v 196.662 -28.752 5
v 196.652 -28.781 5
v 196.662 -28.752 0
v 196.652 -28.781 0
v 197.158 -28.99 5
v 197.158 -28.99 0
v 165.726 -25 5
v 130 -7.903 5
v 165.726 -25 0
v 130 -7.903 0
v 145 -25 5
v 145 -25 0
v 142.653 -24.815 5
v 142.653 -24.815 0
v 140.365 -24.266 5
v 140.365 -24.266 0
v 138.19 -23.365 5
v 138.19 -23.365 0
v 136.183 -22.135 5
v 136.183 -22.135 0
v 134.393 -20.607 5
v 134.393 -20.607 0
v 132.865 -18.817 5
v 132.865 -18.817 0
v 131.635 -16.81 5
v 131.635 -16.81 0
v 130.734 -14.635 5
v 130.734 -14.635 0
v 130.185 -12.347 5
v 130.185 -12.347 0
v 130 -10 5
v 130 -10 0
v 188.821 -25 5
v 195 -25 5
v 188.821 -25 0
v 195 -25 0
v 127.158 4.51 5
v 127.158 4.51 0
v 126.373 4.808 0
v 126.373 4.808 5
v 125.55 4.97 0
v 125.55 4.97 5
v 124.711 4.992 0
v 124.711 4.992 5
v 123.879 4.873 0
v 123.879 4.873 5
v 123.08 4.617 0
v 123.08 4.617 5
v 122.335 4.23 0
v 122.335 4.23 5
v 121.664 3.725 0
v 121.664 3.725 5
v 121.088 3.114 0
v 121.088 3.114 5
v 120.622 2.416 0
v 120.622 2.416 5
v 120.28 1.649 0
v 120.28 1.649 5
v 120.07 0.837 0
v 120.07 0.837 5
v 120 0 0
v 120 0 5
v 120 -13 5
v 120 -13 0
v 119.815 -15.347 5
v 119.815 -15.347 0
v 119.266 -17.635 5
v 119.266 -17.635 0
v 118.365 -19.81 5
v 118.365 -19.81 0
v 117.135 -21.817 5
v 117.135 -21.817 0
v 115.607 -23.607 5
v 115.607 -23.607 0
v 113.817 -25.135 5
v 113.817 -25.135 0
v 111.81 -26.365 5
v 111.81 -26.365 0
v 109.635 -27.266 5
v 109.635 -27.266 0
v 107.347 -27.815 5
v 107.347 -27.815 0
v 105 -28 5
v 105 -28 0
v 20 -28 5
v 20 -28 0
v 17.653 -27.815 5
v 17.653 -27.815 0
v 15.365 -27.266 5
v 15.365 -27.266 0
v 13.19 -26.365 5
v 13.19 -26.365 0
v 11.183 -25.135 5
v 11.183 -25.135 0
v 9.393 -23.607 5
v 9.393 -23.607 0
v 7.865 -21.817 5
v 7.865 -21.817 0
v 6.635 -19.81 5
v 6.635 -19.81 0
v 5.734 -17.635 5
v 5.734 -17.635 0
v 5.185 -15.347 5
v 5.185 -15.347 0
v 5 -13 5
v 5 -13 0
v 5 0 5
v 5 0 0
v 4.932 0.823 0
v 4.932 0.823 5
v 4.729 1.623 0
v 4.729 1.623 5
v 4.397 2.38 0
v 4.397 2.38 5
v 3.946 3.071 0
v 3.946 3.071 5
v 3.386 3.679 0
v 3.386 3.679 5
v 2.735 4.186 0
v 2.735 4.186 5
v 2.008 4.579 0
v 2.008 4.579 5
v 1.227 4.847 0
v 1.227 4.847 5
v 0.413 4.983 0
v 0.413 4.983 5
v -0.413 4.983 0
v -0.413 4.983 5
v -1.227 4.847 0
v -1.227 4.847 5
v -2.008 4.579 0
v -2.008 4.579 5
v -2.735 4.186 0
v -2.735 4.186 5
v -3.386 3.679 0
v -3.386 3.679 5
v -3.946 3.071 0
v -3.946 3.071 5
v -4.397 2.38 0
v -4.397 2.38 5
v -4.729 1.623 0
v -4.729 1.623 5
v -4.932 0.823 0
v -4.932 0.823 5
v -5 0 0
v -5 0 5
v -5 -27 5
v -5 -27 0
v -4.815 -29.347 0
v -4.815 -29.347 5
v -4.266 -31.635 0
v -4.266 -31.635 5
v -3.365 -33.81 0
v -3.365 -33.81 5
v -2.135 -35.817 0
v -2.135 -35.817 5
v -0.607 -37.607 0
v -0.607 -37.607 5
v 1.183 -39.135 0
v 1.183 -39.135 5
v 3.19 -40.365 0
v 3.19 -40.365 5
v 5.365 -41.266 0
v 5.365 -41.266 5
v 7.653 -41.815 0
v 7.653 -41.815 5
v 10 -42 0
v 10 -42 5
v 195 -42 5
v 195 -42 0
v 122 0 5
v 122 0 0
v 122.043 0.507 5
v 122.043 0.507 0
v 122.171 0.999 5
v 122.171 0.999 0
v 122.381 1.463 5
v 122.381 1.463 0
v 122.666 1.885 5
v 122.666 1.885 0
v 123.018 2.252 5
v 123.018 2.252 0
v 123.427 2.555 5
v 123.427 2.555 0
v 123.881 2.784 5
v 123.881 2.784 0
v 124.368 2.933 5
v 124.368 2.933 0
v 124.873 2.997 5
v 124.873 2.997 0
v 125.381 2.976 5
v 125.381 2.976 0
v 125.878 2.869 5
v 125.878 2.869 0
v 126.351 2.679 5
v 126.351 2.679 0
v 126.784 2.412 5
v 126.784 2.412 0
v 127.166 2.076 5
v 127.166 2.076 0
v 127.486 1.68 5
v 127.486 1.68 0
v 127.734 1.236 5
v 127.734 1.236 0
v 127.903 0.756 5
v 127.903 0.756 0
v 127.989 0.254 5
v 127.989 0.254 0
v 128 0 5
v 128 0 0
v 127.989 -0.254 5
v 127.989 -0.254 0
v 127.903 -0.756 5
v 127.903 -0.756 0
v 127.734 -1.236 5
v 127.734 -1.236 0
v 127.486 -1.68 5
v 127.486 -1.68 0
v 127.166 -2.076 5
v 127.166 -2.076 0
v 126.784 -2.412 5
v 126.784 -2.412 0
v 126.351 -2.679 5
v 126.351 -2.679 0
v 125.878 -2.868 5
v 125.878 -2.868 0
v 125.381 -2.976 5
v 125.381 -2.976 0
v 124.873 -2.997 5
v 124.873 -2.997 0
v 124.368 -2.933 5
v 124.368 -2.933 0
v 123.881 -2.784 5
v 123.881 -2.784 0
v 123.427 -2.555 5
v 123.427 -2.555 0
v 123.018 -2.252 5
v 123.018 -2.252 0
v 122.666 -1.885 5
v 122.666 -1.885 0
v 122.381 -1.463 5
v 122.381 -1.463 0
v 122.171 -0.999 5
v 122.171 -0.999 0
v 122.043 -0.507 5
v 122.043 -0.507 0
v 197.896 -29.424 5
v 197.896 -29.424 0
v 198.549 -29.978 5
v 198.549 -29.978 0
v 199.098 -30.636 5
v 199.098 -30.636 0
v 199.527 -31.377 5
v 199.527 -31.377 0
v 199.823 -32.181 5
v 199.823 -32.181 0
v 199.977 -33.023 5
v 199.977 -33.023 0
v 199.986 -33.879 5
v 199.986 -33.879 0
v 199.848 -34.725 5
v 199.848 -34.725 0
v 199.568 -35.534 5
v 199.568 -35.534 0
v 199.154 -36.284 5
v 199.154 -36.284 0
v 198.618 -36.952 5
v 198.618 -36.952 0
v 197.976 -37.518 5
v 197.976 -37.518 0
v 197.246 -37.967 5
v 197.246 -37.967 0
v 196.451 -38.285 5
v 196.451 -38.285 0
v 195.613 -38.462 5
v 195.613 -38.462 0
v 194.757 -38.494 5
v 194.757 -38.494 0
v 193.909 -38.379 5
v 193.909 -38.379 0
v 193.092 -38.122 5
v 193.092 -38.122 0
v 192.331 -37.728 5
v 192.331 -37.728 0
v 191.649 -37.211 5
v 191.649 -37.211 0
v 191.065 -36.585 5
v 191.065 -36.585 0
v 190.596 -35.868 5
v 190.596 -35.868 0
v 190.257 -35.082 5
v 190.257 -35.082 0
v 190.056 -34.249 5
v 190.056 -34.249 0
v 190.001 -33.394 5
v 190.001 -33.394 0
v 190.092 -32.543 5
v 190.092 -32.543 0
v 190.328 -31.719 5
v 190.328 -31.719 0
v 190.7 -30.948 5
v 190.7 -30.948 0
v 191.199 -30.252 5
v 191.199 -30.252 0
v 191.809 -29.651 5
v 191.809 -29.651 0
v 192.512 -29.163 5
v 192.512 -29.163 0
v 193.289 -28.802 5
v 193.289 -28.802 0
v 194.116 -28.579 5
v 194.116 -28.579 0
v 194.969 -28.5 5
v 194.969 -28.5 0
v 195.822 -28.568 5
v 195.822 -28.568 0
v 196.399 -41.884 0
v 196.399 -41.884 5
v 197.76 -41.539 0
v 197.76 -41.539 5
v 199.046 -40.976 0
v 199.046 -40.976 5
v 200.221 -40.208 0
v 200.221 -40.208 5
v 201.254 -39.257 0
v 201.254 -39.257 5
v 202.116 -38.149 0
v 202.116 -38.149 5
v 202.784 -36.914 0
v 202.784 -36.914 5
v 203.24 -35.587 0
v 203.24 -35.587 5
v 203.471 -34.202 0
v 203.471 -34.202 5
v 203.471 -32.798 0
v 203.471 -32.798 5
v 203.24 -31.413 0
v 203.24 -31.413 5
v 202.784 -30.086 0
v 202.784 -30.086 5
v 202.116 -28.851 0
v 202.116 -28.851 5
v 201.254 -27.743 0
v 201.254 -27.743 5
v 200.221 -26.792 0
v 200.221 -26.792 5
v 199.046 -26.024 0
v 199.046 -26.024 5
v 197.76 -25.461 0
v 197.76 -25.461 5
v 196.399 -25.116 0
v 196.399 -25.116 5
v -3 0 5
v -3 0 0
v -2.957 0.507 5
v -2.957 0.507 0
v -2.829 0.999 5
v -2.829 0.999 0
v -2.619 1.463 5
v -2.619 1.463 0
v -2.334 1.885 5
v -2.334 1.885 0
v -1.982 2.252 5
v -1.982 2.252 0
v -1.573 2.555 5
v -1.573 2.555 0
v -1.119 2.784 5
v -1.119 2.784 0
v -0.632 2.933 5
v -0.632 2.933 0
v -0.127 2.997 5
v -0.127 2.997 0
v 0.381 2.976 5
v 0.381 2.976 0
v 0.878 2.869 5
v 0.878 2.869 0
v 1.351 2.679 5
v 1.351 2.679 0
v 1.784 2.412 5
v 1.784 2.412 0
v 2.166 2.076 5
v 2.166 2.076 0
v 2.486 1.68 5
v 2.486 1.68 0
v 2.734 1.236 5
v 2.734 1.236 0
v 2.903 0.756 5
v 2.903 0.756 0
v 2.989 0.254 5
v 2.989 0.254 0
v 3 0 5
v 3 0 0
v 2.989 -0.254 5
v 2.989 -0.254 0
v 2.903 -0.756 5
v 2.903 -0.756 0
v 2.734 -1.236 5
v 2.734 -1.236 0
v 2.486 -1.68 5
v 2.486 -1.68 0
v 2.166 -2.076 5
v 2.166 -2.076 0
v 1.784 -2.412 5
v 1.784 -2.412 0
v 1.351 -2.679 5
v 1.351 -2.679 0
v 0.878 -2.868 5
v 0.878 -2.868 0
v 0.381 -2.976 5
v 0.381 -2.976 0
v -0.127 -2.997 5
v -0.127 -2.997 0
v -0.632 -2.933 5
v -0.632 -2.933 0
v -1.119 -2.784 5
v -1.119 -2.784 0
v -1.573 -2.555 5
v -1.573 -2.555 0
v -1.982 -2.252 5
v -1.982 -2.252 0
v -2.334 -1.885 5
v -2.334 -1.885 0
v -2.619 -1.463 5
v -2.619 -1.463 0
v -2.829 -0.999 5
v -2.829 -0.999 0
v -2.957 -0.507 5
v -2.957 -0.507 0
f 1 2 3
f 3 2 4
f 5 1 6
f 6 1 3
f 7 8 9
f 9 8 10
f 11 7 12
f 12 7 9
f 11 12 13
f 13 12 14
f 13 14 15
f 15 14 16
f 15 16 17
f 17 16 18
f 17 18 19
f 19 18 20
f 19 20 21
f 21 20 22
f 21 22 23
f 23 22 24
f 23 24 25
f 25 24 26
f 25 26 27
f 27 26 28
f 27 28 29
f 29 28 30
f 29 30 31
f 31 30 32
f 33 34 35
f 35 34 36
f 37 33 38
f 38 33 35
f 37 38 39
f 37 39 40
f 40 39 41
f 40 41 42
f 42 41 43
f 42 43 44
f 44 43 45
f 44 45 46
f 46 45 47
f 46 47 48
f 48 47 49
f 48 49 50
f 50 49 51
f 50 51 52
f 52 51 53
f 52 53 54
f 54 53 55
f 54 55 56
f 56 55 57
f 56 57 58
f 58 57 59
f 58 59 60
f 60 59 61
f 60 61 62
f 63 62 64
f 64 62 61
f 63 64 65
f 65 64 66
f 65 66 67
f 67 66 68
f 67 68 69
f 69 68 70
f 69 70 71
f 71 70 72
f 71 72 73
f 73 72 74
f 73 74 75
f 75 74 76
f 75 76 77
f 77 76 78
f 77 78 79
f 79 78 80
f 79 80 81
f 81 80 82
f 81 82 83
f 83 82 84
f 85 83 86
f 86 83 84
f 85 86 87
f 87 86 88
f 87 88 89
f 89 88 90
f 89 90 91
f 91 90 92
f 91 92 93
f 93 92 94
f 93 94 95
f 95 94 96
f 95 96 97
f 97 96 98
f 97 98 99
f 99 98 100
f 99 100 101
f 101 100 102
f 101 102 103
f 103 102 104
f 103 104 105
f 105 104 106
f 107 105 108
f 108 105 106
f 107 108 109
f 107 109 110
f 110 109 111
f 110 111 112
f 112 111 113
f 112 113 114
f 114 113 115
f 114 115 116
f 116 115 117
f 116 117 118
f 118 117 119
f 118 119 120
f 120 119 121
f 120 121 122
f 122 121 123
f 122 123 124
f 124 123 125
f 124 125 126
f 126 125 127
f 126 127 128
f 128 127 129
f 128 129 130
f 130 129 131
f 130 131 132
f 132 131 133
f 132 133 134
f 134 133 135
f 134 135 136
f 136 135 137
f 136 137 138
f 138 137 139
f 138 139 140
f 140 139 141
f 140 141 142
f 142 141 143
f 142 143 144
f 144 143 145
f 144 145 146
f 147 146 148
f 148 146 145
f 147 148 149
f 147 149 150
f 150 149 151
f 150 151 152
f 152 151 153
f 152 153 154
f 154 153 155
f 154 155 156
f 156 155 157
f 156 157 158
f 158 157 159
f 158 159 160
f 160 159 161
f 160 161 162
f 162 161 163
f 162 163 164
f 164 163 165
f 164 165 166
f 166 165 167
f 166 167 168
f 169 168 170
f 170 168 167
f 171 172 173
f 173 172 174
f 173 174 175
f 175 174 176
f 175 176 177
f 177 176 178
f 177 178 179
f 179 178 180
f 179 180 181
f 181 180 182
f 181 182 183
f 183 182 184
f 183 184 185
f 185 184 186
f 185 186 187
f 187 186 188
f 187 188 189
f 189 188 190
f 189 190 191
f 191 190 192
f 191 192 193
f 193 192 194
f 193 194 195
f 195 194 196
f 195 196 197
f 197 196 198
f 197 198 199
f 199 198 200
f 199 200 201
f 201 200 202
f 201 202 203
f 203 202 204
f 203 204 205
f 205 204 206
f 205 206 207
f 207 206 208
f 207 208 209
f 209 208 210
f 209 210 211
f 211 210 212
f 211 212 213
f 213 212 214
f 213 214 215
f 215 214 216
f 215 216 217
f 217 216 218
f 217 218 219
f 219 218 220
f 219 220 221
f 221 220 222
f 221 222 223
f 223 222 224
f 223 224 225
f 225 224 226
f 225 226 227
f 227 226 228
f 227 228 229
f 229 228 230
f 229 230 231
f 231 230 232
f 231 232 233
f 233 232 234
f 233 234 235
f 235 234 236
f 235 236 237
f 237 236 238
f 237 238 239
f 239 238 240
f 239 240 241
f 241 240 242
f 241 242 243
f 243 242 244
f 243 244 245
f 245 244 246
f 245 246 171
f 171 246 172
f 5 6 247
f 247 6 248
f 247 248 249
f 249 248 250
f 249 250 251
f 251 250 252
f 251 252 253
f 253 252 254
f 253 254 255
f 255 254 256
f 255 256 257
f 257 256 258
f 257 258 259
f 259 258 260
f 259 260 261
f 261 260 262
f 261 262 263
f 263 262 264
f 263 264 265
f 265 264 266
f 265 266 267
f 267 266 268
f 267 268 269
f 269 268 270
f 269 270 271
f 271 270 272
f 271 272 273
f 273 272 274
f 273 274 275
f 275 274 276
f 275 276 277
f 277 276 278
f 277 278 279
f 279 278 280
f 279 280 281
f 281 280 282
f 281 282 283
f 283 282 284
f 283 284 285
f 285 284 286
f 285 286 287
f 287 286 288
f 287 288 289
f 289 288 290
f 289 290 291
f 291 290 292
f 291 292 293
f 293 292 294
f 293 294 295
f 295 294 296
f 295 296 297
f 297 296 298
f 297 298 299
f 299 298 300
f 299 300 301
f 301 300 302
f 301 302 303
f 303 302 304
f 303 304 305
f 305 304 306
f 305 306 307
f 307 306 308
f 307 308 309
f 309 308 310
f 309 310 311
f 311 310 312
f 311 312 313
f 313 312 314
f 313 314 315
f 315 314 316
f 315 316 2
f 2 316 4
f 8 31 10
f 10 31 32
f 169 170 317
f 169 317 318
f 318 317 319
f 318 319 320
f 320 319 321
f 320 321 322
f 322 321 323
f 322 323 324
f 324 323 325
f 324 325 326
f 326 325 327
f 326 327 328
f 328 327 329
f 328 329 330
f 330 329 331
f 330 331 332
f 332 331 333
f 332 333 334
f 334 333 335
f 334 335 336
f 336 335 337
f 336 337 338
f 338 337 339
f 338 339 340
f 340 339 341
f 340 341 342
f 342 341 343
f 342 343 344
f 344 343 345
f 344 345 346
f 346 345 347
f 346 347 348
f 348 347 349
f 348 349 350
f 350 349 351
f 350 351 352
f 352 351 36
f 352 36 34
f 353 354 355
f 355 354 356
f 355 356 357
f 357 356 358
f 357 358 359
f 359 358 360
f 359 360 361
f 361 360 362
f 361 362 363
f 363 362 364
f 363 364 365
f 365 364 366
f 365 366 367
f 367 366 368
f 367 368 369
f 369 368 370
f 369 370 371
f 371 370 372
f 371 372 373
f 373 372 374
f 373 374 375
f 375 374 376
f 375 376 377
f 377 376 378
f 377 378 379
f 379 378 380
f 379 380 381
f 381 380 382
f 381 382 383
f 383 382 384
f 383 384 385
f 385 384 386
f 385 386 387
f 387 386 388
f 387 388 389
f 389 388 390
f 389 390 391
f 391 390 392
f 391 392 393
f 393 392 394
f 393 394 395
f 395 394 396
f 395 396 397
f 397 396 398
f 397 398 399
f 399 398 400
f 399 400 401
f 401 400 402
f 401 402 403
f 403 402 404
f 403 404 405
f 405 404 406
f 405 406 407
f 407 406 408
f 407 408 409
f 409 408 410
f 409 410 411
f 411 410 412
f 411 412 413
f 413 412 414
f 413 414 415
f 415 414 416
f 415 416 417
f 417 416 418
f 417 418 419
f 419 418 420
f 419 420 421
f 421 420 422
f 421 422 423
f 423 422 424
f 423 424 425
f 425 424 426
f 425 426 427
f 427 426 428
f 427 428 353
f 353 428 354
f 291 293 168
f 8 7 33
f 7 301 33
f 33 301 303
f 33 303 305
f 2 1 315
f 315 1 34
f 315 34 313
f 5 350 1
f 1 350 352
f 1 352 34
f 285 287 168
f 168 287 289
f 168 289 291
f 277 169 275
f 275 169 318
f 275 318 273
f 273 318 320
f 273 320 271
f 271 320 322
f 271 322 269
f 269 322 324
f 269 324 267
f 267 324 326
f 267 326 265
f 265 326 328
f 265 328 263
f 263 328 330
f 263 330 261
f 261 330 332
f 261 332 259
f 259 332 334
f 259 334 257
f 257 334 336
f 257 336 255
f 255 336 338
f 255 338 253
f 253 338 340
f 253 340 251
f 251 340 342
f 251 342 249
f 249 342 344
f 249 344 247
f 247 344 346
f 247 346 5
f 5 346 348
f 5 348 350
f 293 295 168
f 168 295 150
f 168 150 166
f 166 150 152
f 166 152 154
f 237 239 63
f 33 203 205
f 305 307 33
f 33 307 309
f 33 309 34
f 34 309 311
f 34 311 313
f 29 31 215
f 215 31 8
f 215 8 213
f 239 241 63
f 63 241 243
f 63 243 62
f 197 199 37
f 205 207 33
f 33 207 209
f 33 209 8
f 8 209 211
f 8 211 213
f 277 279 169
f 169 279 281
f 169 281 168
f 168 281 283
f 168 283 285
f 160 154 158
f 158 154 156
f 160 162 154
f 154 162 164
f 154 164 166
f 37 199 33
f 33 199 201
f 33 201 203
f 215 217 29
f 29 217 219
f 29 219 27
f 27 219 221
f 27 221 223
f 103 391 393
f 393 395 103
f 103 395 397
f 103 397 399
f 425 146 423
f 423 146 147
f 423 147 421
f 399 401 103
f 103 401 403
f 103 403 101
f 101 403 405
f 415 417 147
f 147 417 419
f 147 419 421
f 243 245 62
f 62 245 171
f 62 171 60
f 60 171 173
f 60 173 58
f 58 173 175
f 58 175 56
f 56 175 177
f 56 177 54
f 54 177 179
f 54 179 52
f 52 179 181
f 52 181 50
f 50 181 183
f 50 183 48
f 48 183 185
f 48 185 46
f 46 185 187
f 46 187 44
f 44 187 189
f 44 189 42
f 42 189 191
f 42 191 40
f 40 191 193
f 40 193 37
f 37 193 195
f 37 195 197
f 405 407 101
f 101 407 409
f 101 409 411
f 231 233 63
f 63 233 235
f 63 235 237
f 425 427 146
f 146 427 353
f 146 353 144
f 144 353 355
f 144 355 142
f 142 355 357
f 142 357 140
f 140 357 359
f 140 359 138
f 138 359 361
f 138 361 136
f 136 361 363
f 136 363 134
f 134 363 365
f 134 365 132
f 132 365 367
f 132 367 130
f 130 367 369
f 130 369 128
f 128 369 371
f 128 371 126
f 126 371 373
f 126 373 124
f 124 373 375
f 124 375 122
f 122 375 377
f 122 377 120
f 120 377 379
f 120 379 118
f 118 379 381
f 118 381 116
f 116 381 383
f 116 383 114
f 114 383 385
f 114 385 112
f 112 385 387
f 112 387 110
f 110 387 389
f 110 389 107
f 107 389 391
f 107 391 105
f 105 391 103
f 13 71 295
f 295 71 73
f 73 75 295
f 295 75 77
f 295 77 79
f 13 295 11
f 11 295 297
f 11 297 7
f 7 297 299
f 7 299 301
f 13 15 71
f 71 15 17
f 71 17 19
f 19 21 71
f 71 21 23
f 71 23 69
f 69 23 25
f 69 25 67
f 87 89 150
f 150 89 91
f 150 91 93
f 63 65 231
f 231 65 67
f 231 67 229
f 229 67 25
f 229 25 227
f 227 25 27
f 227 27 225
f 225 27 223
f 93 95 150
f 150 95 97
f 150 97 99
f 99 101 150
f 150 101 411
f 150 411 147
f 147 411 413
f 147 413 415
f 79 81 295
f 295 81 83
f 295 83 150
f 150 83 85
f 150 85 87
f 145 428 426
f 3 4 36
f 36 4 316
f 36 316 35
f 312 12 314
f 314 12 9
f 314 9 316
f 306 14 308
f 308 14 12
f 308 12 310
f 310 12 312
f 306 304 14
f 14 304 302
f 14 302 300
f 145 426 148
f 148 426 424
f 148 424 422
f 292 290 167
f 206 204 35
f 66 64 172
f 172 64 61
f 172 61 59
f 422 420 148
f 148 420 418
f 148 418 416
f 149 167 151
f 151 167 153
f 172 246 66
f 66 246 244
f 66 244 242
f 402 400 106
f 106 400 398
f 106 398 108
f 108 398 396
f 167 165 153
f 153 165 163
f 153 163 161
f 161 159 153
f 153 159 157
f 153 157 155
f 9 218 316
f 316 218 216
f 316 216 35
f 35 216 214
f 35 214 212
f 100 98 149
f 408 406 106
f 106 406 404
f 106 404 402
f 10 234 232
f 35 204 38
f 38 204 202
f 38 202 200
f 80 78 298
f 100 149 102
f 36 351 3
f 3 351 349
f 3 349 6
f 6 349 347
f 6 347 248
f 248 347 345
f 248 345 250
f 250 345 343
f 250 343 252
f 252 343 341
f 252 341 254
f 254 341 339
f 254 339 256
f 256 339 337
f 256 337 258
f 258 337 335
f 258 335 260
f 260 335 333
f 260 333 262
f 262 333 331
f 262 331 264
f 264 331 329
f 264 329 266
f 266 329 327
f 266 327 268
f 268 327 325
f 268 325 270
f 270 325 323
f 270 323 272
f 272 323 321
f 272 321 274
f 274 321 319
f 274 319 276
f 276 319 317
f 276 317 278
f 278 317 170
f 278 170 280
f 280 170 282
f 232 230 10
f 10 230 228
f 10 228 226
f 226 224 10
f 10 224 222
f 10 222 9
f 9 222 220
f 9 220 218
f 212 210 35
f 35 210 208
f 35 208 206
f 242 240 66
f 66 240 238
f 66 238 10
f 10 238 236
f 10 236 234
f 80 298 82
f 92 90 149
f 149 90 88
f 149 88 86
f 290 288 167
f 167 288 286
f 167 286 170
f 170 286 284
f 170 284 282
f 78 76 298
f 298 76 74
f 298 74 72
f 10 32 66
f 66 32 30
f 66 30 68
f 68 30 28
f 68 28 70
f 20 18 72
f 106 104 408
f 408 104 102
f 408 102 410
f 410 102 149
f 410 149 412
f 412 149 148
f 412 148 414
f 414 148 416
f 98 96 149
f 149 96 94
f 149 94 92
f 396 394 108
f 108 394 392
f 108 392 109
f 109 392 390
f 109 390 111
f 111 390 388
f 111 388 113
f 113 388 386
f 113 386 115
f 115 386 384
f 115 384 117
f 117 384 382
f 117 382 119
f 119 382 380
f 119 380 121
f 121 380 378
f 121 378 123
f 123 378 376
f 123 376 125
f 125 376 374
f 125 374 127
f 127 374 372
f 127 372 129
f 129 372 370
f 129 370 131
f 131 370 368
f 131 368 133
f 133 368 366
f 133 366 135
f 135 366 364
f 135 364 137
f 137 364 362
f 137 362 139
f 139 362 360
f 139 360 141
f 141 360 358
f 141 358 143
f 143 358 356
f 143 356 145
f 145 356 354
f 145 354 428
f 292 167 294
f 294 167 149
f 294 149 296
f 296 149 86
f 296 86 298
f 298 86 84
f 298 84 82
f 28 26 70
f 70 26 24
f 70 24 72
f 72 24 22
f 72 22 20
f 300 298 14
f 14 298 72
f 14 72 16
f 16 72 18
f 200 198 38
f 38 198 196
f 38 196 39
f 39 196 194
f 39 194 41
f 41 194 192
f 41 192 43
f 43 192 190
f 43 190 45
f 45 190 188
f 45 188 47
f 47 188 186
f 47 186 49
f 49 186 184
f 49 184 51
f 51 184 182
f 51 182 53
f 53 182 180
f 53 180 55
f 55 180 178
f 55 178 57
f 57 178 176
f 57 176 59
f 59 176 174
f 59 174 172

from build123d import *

# Parameters (mm, degrees)
SKETCH1_R           = 3
BOSS_EXTRUDE1_DEPTH = 5


with BuildPart() as part:
    # Sketch1 → Boss-Extrude1 (new body)
    with BuildSketch(Plane.XY):
        with BuildLine():
            ThreePointArc((195, -42), (203.5, -33.5), (195, -25))
            Line((195, -25), (188.821366739, -25))
            Line((188.821366739, -25), (127.15841734, 4.510125784))
            ThreePointArc((127.15841734, 4.510125784), (122.334675132, 4.230371538), (120, 0))
            Line((120, 0), (120, -13))
            ThreePointArc((120, -13), (115.606601718, -23.606601718), (105, -28))
            Line((105, -28), (20, -28))
            ThreePointArc((20, -28), (9.393398282, -23.606601718), (5, -13))
            Line((5, -13), (5, 0))
            ThreePointArc((5, 0), (0, 5), (-5, 0))
            Line((-5, 0), (-5, -27))
            ThreePointArc((-5, -27), (-0.606601734, -37.606601701), (9.999999954, -42))
            Line((9.999999954, -42), (195, -42))
        make_face()
        with BuildLine():
            Line((196.651752124, -28.780708218), (196.661737841, -28.752177599))
            Line((196.661737841, -28.752177599), (197.15841734, -28.989874216))
            ThreePointArc((197.15841734, -28.989874216), (193.092046793, -38.121657123), (196.651752124, -28.780708218))
        make_face(mode=Mode.SUBTRACT)
        with BuildLine():
            Line((130, -7.902630298), (165.725847138, -25))
            Line((165.725847138, -25), (145, -25))
            ThreePointArc((145, -25), (134.393398282, -20.606601718), (130, -10))
            Line((130, -10), (130, -7.902630298))
        make_face(mode=Mode.SUBTRACT)
        with Locations((125, 0)):
            Circle(SKETCH1_R, mode=Mode.SUBTRACT)
        Circle(SKETCH1_R, mode=Mode.SUBTRACT)
    extrude(amount=BOSS_EXTRUDE1_DEPTH)


solid = part.part
